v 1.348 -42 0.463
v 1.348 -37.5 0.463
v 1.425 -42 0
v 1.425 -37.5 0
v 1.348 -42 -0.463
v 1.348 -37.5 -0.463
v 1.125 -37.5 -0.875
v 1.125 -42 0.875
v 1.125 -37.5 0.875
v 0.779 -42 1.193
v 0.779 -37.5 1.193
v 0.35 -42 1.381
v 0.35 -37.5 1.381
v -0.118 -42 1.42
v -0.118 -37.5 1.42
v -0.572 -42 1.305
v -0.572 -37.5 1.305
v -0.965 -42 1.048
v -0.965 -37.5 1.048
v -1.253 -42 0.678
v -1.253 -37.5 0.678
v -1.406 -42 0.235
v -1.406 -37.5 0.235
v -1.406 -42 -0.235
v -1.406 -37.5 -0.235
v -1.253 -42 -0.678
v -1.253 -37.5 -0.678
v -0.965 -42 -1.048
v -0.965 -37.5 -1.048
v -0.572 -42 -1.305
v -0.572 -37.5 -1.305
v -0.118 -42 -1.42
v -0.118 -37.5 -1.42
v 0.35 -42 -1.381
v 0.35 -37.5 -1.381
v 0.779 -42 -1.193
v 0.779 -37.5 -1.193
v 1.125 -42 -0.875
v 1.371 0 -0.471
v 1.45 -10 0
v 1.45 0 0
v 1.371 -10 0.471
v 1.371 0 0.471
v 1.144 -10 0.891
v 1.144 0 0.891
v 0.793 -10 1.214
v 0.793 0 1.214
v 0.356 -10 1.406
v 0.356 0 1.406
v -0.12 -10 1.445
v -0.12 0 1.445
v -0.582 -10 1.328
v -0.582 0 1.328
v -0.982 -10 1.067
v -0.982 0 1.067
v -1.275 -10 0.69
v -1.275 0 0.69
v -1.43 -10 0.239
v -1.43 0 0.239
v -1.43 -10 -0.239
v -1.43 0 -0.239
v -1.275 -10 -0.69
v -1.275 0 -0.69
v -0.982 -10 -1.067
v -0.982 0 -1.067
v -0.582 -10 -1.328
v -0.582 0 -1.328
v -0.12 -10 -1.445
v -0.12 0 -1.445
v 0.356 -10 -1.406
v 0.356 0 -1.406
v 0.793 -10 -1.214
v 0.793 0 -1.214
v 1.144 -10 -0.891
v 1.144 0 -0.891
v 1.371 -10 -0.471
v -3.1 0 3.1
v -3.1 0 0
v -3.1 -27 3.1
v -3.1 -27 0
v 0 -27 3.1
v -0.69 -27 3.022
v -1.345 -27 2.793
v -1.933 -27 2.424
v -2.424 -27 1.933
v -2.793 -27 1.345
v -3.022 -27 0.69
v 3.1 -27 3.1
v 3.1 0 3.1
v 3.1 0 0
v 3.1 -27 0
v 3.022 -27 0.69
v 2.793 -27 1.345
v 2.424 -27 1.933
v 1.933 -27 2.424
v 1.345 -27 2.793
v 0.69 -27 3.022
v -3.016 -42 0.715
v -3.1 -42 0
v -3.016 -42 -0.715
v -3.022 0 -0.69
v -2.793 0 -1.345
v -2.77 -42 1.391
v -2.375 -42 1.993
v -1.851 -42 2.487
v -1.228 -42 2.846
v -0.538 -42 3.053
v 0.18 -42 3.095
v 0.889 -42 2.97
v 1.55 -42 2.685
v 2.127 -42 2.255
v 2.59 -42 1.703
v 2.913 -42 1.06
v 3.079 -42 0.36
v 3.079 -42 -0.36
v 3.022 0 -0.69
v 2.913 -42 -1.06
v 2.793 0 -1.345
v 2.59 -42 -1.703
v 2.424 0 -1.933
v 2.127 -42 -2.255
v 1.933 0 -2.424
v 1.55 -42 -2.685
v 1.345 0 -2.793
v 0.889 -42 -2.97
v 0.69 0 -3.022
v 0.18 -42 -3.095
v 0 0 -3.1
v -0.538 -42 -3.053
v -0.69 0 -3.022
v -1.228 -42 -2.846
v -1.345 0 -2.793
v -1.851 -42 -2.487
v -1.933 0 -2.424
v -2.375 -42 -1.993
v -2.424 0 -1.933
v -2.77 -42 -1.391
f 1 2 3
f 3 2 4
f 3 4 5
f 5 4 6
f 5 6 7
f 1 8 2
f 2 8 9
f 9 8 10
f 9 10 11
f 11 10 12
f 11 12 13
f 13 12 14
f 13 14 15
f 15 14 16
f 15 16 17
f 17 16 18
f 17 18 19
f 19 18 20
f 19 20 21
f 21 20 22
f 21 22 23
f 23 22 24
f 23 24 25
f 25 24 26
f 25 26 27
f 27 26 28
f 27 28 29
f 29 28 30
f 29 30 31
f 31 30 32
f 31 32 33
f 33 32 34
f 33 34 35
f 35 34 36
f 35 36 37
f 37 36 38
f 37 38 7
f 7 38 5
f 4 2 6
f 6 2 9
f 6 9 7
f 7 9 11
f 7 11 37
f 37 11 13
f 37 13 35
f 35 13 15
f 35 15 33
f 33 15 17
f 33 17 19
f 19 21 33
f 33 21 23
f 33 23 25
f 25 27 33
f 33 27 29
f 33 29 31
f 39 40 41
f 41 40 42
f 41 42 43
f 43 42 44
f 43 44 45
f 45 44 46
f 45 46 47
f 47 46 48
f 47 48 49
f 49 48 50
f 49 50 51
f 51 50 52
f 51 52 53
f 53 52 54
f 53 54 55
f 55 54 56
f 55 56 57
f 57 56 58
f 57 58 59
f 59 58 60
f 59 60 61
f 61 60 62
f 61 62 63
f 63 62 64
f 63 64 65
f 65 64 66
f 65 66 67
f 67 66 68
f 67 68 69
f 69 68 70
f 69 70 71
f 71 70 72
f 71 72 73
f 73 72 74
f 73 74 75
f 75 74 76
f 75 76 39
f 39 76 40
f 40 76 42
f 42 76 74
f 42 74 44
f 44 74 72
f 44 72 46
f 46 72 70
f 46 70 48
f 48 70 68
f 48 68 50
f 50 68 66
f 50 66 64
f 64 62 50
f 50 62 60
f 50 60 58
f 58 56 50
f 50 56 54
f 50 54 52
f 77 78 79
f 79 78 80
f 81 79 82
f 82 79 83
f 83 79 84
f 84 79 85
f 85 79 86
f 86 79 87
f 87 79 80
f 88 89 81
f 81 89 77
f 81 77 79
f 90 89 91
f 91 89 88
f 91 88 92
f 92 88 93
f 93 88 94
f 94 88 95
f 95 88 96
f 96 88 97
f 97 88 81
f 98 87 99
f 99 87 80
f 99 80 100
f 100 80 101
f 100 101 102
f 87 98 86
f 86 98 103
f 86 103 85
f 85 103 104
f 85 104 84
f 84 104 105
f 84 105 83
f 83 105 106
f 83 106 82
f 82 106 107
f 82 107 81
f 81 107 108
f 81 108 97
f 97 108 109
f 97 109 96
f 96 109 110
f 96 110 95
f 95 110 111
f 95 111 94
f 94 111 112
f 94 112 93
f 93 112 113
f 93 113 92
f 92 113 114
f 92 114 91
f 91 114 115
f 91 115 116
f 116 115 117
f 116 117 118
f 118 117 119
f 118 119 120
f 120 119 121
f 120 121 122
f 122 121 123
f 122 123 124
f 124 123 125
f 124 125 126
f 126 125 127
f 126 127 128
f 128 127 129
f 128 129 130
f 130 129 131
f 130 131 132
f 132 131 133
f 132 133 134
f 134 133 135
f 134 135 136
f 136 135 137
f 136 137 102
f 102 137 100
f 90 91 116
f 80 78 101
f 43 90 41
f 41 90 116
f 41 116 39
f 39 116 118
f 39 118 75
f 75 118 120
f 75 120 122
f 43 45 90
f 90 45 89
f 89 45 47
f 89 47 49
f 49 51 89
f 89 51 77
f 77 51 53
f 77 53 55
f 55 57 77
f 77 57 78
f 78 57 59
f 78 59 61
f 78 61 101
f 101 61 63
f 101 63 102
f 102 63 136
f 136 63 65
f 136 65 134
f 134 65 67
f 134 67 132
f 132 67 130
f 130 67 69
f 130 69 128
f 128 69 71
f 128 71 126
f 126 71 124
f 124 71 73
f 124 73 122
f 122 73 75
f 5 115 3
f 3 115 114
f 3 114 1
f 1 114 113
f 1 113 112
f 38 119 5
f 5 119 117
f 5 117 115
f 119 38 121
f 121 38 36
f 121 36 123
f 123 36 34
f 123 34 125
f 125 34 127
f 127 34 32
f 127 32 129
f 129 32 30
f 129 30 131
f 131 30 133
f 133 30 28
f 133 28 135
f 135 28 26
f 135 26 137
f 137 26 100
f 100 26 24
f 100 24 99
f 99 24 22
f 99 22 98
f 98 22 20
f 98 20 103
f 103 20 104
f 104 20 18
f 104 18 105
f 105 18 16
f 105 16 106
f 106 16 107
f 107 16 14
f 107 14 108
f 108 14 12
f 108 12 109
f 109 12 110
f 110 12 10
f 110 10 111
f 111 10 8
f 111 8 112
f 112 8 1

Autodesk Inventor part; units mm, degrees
ref_plane "YZ Plane" through (0, 0, 0) normal (1, 0, 0) x (0, 1, 0)
ref_plane "XZ Plane" through (0, 0, 0) normal (0, 1, 0) x (-1, 0, 0)
ref_plane "XY Plane" through (0, 0, 0) normal (0, 0, 1) x (1, 0, 0)
sketch "Náčrt1" plane through (0, 0, 0) normal (0, 1, 0) x (-1, 0, 0)
  circle A0 centre (0, 0) radius 3.1
  circle A1 centre (0, 0) radius 1.45
  line L0 (3.1, 0) -> (-3.1, 0)
  line L1 (-3.1, 0) -> (-3.1, 3.1)
  line L2 (-3.1, 3.1) -> (3.1, 3.1)
  line L3 (3.1, 3.1) -> (3.1, 0)
  point P0 (0, 3.1)
  dimension "d0" = 6.2
  dimension "d1" = 2.9
extrude "Vysunutí1" add sketch "Náčrt1" against normal blind 42 contours L0 A1 A0 | A0 L0 A1 | L0 A1 | A1 L0
extrude "Vysunutí2" add sketch "Náčrt1" against normal blind 27 contours L1 L2 A0 | A0 L2 L3
sketch "Náčrt2" plane through (0, 0, 0) normal (0, 1, 0) x (1, 0, 0)
  circle A0 centre (0, 0) radius 3.1 projected
  point P0 (-3.1, 0)
  point P1 (3.1, 0)
hole "Díra1" at (0, 0, 0) direction (0, -1, 0) diameter 2.9 depth 10
sketch "Náčrt3" plane through (0, -42, 0) normal (0, -1, 0) x (1, 0, 0)
  circle A0 centre (0, 0) radius 3.1 projected
  point P0 (3.1, 0)
  point P1 (-3.1, 0)
hole "Díra2" at (0, -42, 0) direction (0, 1, 0) diameter 2.85 depth 4.5
properties part number "spojka v2"
